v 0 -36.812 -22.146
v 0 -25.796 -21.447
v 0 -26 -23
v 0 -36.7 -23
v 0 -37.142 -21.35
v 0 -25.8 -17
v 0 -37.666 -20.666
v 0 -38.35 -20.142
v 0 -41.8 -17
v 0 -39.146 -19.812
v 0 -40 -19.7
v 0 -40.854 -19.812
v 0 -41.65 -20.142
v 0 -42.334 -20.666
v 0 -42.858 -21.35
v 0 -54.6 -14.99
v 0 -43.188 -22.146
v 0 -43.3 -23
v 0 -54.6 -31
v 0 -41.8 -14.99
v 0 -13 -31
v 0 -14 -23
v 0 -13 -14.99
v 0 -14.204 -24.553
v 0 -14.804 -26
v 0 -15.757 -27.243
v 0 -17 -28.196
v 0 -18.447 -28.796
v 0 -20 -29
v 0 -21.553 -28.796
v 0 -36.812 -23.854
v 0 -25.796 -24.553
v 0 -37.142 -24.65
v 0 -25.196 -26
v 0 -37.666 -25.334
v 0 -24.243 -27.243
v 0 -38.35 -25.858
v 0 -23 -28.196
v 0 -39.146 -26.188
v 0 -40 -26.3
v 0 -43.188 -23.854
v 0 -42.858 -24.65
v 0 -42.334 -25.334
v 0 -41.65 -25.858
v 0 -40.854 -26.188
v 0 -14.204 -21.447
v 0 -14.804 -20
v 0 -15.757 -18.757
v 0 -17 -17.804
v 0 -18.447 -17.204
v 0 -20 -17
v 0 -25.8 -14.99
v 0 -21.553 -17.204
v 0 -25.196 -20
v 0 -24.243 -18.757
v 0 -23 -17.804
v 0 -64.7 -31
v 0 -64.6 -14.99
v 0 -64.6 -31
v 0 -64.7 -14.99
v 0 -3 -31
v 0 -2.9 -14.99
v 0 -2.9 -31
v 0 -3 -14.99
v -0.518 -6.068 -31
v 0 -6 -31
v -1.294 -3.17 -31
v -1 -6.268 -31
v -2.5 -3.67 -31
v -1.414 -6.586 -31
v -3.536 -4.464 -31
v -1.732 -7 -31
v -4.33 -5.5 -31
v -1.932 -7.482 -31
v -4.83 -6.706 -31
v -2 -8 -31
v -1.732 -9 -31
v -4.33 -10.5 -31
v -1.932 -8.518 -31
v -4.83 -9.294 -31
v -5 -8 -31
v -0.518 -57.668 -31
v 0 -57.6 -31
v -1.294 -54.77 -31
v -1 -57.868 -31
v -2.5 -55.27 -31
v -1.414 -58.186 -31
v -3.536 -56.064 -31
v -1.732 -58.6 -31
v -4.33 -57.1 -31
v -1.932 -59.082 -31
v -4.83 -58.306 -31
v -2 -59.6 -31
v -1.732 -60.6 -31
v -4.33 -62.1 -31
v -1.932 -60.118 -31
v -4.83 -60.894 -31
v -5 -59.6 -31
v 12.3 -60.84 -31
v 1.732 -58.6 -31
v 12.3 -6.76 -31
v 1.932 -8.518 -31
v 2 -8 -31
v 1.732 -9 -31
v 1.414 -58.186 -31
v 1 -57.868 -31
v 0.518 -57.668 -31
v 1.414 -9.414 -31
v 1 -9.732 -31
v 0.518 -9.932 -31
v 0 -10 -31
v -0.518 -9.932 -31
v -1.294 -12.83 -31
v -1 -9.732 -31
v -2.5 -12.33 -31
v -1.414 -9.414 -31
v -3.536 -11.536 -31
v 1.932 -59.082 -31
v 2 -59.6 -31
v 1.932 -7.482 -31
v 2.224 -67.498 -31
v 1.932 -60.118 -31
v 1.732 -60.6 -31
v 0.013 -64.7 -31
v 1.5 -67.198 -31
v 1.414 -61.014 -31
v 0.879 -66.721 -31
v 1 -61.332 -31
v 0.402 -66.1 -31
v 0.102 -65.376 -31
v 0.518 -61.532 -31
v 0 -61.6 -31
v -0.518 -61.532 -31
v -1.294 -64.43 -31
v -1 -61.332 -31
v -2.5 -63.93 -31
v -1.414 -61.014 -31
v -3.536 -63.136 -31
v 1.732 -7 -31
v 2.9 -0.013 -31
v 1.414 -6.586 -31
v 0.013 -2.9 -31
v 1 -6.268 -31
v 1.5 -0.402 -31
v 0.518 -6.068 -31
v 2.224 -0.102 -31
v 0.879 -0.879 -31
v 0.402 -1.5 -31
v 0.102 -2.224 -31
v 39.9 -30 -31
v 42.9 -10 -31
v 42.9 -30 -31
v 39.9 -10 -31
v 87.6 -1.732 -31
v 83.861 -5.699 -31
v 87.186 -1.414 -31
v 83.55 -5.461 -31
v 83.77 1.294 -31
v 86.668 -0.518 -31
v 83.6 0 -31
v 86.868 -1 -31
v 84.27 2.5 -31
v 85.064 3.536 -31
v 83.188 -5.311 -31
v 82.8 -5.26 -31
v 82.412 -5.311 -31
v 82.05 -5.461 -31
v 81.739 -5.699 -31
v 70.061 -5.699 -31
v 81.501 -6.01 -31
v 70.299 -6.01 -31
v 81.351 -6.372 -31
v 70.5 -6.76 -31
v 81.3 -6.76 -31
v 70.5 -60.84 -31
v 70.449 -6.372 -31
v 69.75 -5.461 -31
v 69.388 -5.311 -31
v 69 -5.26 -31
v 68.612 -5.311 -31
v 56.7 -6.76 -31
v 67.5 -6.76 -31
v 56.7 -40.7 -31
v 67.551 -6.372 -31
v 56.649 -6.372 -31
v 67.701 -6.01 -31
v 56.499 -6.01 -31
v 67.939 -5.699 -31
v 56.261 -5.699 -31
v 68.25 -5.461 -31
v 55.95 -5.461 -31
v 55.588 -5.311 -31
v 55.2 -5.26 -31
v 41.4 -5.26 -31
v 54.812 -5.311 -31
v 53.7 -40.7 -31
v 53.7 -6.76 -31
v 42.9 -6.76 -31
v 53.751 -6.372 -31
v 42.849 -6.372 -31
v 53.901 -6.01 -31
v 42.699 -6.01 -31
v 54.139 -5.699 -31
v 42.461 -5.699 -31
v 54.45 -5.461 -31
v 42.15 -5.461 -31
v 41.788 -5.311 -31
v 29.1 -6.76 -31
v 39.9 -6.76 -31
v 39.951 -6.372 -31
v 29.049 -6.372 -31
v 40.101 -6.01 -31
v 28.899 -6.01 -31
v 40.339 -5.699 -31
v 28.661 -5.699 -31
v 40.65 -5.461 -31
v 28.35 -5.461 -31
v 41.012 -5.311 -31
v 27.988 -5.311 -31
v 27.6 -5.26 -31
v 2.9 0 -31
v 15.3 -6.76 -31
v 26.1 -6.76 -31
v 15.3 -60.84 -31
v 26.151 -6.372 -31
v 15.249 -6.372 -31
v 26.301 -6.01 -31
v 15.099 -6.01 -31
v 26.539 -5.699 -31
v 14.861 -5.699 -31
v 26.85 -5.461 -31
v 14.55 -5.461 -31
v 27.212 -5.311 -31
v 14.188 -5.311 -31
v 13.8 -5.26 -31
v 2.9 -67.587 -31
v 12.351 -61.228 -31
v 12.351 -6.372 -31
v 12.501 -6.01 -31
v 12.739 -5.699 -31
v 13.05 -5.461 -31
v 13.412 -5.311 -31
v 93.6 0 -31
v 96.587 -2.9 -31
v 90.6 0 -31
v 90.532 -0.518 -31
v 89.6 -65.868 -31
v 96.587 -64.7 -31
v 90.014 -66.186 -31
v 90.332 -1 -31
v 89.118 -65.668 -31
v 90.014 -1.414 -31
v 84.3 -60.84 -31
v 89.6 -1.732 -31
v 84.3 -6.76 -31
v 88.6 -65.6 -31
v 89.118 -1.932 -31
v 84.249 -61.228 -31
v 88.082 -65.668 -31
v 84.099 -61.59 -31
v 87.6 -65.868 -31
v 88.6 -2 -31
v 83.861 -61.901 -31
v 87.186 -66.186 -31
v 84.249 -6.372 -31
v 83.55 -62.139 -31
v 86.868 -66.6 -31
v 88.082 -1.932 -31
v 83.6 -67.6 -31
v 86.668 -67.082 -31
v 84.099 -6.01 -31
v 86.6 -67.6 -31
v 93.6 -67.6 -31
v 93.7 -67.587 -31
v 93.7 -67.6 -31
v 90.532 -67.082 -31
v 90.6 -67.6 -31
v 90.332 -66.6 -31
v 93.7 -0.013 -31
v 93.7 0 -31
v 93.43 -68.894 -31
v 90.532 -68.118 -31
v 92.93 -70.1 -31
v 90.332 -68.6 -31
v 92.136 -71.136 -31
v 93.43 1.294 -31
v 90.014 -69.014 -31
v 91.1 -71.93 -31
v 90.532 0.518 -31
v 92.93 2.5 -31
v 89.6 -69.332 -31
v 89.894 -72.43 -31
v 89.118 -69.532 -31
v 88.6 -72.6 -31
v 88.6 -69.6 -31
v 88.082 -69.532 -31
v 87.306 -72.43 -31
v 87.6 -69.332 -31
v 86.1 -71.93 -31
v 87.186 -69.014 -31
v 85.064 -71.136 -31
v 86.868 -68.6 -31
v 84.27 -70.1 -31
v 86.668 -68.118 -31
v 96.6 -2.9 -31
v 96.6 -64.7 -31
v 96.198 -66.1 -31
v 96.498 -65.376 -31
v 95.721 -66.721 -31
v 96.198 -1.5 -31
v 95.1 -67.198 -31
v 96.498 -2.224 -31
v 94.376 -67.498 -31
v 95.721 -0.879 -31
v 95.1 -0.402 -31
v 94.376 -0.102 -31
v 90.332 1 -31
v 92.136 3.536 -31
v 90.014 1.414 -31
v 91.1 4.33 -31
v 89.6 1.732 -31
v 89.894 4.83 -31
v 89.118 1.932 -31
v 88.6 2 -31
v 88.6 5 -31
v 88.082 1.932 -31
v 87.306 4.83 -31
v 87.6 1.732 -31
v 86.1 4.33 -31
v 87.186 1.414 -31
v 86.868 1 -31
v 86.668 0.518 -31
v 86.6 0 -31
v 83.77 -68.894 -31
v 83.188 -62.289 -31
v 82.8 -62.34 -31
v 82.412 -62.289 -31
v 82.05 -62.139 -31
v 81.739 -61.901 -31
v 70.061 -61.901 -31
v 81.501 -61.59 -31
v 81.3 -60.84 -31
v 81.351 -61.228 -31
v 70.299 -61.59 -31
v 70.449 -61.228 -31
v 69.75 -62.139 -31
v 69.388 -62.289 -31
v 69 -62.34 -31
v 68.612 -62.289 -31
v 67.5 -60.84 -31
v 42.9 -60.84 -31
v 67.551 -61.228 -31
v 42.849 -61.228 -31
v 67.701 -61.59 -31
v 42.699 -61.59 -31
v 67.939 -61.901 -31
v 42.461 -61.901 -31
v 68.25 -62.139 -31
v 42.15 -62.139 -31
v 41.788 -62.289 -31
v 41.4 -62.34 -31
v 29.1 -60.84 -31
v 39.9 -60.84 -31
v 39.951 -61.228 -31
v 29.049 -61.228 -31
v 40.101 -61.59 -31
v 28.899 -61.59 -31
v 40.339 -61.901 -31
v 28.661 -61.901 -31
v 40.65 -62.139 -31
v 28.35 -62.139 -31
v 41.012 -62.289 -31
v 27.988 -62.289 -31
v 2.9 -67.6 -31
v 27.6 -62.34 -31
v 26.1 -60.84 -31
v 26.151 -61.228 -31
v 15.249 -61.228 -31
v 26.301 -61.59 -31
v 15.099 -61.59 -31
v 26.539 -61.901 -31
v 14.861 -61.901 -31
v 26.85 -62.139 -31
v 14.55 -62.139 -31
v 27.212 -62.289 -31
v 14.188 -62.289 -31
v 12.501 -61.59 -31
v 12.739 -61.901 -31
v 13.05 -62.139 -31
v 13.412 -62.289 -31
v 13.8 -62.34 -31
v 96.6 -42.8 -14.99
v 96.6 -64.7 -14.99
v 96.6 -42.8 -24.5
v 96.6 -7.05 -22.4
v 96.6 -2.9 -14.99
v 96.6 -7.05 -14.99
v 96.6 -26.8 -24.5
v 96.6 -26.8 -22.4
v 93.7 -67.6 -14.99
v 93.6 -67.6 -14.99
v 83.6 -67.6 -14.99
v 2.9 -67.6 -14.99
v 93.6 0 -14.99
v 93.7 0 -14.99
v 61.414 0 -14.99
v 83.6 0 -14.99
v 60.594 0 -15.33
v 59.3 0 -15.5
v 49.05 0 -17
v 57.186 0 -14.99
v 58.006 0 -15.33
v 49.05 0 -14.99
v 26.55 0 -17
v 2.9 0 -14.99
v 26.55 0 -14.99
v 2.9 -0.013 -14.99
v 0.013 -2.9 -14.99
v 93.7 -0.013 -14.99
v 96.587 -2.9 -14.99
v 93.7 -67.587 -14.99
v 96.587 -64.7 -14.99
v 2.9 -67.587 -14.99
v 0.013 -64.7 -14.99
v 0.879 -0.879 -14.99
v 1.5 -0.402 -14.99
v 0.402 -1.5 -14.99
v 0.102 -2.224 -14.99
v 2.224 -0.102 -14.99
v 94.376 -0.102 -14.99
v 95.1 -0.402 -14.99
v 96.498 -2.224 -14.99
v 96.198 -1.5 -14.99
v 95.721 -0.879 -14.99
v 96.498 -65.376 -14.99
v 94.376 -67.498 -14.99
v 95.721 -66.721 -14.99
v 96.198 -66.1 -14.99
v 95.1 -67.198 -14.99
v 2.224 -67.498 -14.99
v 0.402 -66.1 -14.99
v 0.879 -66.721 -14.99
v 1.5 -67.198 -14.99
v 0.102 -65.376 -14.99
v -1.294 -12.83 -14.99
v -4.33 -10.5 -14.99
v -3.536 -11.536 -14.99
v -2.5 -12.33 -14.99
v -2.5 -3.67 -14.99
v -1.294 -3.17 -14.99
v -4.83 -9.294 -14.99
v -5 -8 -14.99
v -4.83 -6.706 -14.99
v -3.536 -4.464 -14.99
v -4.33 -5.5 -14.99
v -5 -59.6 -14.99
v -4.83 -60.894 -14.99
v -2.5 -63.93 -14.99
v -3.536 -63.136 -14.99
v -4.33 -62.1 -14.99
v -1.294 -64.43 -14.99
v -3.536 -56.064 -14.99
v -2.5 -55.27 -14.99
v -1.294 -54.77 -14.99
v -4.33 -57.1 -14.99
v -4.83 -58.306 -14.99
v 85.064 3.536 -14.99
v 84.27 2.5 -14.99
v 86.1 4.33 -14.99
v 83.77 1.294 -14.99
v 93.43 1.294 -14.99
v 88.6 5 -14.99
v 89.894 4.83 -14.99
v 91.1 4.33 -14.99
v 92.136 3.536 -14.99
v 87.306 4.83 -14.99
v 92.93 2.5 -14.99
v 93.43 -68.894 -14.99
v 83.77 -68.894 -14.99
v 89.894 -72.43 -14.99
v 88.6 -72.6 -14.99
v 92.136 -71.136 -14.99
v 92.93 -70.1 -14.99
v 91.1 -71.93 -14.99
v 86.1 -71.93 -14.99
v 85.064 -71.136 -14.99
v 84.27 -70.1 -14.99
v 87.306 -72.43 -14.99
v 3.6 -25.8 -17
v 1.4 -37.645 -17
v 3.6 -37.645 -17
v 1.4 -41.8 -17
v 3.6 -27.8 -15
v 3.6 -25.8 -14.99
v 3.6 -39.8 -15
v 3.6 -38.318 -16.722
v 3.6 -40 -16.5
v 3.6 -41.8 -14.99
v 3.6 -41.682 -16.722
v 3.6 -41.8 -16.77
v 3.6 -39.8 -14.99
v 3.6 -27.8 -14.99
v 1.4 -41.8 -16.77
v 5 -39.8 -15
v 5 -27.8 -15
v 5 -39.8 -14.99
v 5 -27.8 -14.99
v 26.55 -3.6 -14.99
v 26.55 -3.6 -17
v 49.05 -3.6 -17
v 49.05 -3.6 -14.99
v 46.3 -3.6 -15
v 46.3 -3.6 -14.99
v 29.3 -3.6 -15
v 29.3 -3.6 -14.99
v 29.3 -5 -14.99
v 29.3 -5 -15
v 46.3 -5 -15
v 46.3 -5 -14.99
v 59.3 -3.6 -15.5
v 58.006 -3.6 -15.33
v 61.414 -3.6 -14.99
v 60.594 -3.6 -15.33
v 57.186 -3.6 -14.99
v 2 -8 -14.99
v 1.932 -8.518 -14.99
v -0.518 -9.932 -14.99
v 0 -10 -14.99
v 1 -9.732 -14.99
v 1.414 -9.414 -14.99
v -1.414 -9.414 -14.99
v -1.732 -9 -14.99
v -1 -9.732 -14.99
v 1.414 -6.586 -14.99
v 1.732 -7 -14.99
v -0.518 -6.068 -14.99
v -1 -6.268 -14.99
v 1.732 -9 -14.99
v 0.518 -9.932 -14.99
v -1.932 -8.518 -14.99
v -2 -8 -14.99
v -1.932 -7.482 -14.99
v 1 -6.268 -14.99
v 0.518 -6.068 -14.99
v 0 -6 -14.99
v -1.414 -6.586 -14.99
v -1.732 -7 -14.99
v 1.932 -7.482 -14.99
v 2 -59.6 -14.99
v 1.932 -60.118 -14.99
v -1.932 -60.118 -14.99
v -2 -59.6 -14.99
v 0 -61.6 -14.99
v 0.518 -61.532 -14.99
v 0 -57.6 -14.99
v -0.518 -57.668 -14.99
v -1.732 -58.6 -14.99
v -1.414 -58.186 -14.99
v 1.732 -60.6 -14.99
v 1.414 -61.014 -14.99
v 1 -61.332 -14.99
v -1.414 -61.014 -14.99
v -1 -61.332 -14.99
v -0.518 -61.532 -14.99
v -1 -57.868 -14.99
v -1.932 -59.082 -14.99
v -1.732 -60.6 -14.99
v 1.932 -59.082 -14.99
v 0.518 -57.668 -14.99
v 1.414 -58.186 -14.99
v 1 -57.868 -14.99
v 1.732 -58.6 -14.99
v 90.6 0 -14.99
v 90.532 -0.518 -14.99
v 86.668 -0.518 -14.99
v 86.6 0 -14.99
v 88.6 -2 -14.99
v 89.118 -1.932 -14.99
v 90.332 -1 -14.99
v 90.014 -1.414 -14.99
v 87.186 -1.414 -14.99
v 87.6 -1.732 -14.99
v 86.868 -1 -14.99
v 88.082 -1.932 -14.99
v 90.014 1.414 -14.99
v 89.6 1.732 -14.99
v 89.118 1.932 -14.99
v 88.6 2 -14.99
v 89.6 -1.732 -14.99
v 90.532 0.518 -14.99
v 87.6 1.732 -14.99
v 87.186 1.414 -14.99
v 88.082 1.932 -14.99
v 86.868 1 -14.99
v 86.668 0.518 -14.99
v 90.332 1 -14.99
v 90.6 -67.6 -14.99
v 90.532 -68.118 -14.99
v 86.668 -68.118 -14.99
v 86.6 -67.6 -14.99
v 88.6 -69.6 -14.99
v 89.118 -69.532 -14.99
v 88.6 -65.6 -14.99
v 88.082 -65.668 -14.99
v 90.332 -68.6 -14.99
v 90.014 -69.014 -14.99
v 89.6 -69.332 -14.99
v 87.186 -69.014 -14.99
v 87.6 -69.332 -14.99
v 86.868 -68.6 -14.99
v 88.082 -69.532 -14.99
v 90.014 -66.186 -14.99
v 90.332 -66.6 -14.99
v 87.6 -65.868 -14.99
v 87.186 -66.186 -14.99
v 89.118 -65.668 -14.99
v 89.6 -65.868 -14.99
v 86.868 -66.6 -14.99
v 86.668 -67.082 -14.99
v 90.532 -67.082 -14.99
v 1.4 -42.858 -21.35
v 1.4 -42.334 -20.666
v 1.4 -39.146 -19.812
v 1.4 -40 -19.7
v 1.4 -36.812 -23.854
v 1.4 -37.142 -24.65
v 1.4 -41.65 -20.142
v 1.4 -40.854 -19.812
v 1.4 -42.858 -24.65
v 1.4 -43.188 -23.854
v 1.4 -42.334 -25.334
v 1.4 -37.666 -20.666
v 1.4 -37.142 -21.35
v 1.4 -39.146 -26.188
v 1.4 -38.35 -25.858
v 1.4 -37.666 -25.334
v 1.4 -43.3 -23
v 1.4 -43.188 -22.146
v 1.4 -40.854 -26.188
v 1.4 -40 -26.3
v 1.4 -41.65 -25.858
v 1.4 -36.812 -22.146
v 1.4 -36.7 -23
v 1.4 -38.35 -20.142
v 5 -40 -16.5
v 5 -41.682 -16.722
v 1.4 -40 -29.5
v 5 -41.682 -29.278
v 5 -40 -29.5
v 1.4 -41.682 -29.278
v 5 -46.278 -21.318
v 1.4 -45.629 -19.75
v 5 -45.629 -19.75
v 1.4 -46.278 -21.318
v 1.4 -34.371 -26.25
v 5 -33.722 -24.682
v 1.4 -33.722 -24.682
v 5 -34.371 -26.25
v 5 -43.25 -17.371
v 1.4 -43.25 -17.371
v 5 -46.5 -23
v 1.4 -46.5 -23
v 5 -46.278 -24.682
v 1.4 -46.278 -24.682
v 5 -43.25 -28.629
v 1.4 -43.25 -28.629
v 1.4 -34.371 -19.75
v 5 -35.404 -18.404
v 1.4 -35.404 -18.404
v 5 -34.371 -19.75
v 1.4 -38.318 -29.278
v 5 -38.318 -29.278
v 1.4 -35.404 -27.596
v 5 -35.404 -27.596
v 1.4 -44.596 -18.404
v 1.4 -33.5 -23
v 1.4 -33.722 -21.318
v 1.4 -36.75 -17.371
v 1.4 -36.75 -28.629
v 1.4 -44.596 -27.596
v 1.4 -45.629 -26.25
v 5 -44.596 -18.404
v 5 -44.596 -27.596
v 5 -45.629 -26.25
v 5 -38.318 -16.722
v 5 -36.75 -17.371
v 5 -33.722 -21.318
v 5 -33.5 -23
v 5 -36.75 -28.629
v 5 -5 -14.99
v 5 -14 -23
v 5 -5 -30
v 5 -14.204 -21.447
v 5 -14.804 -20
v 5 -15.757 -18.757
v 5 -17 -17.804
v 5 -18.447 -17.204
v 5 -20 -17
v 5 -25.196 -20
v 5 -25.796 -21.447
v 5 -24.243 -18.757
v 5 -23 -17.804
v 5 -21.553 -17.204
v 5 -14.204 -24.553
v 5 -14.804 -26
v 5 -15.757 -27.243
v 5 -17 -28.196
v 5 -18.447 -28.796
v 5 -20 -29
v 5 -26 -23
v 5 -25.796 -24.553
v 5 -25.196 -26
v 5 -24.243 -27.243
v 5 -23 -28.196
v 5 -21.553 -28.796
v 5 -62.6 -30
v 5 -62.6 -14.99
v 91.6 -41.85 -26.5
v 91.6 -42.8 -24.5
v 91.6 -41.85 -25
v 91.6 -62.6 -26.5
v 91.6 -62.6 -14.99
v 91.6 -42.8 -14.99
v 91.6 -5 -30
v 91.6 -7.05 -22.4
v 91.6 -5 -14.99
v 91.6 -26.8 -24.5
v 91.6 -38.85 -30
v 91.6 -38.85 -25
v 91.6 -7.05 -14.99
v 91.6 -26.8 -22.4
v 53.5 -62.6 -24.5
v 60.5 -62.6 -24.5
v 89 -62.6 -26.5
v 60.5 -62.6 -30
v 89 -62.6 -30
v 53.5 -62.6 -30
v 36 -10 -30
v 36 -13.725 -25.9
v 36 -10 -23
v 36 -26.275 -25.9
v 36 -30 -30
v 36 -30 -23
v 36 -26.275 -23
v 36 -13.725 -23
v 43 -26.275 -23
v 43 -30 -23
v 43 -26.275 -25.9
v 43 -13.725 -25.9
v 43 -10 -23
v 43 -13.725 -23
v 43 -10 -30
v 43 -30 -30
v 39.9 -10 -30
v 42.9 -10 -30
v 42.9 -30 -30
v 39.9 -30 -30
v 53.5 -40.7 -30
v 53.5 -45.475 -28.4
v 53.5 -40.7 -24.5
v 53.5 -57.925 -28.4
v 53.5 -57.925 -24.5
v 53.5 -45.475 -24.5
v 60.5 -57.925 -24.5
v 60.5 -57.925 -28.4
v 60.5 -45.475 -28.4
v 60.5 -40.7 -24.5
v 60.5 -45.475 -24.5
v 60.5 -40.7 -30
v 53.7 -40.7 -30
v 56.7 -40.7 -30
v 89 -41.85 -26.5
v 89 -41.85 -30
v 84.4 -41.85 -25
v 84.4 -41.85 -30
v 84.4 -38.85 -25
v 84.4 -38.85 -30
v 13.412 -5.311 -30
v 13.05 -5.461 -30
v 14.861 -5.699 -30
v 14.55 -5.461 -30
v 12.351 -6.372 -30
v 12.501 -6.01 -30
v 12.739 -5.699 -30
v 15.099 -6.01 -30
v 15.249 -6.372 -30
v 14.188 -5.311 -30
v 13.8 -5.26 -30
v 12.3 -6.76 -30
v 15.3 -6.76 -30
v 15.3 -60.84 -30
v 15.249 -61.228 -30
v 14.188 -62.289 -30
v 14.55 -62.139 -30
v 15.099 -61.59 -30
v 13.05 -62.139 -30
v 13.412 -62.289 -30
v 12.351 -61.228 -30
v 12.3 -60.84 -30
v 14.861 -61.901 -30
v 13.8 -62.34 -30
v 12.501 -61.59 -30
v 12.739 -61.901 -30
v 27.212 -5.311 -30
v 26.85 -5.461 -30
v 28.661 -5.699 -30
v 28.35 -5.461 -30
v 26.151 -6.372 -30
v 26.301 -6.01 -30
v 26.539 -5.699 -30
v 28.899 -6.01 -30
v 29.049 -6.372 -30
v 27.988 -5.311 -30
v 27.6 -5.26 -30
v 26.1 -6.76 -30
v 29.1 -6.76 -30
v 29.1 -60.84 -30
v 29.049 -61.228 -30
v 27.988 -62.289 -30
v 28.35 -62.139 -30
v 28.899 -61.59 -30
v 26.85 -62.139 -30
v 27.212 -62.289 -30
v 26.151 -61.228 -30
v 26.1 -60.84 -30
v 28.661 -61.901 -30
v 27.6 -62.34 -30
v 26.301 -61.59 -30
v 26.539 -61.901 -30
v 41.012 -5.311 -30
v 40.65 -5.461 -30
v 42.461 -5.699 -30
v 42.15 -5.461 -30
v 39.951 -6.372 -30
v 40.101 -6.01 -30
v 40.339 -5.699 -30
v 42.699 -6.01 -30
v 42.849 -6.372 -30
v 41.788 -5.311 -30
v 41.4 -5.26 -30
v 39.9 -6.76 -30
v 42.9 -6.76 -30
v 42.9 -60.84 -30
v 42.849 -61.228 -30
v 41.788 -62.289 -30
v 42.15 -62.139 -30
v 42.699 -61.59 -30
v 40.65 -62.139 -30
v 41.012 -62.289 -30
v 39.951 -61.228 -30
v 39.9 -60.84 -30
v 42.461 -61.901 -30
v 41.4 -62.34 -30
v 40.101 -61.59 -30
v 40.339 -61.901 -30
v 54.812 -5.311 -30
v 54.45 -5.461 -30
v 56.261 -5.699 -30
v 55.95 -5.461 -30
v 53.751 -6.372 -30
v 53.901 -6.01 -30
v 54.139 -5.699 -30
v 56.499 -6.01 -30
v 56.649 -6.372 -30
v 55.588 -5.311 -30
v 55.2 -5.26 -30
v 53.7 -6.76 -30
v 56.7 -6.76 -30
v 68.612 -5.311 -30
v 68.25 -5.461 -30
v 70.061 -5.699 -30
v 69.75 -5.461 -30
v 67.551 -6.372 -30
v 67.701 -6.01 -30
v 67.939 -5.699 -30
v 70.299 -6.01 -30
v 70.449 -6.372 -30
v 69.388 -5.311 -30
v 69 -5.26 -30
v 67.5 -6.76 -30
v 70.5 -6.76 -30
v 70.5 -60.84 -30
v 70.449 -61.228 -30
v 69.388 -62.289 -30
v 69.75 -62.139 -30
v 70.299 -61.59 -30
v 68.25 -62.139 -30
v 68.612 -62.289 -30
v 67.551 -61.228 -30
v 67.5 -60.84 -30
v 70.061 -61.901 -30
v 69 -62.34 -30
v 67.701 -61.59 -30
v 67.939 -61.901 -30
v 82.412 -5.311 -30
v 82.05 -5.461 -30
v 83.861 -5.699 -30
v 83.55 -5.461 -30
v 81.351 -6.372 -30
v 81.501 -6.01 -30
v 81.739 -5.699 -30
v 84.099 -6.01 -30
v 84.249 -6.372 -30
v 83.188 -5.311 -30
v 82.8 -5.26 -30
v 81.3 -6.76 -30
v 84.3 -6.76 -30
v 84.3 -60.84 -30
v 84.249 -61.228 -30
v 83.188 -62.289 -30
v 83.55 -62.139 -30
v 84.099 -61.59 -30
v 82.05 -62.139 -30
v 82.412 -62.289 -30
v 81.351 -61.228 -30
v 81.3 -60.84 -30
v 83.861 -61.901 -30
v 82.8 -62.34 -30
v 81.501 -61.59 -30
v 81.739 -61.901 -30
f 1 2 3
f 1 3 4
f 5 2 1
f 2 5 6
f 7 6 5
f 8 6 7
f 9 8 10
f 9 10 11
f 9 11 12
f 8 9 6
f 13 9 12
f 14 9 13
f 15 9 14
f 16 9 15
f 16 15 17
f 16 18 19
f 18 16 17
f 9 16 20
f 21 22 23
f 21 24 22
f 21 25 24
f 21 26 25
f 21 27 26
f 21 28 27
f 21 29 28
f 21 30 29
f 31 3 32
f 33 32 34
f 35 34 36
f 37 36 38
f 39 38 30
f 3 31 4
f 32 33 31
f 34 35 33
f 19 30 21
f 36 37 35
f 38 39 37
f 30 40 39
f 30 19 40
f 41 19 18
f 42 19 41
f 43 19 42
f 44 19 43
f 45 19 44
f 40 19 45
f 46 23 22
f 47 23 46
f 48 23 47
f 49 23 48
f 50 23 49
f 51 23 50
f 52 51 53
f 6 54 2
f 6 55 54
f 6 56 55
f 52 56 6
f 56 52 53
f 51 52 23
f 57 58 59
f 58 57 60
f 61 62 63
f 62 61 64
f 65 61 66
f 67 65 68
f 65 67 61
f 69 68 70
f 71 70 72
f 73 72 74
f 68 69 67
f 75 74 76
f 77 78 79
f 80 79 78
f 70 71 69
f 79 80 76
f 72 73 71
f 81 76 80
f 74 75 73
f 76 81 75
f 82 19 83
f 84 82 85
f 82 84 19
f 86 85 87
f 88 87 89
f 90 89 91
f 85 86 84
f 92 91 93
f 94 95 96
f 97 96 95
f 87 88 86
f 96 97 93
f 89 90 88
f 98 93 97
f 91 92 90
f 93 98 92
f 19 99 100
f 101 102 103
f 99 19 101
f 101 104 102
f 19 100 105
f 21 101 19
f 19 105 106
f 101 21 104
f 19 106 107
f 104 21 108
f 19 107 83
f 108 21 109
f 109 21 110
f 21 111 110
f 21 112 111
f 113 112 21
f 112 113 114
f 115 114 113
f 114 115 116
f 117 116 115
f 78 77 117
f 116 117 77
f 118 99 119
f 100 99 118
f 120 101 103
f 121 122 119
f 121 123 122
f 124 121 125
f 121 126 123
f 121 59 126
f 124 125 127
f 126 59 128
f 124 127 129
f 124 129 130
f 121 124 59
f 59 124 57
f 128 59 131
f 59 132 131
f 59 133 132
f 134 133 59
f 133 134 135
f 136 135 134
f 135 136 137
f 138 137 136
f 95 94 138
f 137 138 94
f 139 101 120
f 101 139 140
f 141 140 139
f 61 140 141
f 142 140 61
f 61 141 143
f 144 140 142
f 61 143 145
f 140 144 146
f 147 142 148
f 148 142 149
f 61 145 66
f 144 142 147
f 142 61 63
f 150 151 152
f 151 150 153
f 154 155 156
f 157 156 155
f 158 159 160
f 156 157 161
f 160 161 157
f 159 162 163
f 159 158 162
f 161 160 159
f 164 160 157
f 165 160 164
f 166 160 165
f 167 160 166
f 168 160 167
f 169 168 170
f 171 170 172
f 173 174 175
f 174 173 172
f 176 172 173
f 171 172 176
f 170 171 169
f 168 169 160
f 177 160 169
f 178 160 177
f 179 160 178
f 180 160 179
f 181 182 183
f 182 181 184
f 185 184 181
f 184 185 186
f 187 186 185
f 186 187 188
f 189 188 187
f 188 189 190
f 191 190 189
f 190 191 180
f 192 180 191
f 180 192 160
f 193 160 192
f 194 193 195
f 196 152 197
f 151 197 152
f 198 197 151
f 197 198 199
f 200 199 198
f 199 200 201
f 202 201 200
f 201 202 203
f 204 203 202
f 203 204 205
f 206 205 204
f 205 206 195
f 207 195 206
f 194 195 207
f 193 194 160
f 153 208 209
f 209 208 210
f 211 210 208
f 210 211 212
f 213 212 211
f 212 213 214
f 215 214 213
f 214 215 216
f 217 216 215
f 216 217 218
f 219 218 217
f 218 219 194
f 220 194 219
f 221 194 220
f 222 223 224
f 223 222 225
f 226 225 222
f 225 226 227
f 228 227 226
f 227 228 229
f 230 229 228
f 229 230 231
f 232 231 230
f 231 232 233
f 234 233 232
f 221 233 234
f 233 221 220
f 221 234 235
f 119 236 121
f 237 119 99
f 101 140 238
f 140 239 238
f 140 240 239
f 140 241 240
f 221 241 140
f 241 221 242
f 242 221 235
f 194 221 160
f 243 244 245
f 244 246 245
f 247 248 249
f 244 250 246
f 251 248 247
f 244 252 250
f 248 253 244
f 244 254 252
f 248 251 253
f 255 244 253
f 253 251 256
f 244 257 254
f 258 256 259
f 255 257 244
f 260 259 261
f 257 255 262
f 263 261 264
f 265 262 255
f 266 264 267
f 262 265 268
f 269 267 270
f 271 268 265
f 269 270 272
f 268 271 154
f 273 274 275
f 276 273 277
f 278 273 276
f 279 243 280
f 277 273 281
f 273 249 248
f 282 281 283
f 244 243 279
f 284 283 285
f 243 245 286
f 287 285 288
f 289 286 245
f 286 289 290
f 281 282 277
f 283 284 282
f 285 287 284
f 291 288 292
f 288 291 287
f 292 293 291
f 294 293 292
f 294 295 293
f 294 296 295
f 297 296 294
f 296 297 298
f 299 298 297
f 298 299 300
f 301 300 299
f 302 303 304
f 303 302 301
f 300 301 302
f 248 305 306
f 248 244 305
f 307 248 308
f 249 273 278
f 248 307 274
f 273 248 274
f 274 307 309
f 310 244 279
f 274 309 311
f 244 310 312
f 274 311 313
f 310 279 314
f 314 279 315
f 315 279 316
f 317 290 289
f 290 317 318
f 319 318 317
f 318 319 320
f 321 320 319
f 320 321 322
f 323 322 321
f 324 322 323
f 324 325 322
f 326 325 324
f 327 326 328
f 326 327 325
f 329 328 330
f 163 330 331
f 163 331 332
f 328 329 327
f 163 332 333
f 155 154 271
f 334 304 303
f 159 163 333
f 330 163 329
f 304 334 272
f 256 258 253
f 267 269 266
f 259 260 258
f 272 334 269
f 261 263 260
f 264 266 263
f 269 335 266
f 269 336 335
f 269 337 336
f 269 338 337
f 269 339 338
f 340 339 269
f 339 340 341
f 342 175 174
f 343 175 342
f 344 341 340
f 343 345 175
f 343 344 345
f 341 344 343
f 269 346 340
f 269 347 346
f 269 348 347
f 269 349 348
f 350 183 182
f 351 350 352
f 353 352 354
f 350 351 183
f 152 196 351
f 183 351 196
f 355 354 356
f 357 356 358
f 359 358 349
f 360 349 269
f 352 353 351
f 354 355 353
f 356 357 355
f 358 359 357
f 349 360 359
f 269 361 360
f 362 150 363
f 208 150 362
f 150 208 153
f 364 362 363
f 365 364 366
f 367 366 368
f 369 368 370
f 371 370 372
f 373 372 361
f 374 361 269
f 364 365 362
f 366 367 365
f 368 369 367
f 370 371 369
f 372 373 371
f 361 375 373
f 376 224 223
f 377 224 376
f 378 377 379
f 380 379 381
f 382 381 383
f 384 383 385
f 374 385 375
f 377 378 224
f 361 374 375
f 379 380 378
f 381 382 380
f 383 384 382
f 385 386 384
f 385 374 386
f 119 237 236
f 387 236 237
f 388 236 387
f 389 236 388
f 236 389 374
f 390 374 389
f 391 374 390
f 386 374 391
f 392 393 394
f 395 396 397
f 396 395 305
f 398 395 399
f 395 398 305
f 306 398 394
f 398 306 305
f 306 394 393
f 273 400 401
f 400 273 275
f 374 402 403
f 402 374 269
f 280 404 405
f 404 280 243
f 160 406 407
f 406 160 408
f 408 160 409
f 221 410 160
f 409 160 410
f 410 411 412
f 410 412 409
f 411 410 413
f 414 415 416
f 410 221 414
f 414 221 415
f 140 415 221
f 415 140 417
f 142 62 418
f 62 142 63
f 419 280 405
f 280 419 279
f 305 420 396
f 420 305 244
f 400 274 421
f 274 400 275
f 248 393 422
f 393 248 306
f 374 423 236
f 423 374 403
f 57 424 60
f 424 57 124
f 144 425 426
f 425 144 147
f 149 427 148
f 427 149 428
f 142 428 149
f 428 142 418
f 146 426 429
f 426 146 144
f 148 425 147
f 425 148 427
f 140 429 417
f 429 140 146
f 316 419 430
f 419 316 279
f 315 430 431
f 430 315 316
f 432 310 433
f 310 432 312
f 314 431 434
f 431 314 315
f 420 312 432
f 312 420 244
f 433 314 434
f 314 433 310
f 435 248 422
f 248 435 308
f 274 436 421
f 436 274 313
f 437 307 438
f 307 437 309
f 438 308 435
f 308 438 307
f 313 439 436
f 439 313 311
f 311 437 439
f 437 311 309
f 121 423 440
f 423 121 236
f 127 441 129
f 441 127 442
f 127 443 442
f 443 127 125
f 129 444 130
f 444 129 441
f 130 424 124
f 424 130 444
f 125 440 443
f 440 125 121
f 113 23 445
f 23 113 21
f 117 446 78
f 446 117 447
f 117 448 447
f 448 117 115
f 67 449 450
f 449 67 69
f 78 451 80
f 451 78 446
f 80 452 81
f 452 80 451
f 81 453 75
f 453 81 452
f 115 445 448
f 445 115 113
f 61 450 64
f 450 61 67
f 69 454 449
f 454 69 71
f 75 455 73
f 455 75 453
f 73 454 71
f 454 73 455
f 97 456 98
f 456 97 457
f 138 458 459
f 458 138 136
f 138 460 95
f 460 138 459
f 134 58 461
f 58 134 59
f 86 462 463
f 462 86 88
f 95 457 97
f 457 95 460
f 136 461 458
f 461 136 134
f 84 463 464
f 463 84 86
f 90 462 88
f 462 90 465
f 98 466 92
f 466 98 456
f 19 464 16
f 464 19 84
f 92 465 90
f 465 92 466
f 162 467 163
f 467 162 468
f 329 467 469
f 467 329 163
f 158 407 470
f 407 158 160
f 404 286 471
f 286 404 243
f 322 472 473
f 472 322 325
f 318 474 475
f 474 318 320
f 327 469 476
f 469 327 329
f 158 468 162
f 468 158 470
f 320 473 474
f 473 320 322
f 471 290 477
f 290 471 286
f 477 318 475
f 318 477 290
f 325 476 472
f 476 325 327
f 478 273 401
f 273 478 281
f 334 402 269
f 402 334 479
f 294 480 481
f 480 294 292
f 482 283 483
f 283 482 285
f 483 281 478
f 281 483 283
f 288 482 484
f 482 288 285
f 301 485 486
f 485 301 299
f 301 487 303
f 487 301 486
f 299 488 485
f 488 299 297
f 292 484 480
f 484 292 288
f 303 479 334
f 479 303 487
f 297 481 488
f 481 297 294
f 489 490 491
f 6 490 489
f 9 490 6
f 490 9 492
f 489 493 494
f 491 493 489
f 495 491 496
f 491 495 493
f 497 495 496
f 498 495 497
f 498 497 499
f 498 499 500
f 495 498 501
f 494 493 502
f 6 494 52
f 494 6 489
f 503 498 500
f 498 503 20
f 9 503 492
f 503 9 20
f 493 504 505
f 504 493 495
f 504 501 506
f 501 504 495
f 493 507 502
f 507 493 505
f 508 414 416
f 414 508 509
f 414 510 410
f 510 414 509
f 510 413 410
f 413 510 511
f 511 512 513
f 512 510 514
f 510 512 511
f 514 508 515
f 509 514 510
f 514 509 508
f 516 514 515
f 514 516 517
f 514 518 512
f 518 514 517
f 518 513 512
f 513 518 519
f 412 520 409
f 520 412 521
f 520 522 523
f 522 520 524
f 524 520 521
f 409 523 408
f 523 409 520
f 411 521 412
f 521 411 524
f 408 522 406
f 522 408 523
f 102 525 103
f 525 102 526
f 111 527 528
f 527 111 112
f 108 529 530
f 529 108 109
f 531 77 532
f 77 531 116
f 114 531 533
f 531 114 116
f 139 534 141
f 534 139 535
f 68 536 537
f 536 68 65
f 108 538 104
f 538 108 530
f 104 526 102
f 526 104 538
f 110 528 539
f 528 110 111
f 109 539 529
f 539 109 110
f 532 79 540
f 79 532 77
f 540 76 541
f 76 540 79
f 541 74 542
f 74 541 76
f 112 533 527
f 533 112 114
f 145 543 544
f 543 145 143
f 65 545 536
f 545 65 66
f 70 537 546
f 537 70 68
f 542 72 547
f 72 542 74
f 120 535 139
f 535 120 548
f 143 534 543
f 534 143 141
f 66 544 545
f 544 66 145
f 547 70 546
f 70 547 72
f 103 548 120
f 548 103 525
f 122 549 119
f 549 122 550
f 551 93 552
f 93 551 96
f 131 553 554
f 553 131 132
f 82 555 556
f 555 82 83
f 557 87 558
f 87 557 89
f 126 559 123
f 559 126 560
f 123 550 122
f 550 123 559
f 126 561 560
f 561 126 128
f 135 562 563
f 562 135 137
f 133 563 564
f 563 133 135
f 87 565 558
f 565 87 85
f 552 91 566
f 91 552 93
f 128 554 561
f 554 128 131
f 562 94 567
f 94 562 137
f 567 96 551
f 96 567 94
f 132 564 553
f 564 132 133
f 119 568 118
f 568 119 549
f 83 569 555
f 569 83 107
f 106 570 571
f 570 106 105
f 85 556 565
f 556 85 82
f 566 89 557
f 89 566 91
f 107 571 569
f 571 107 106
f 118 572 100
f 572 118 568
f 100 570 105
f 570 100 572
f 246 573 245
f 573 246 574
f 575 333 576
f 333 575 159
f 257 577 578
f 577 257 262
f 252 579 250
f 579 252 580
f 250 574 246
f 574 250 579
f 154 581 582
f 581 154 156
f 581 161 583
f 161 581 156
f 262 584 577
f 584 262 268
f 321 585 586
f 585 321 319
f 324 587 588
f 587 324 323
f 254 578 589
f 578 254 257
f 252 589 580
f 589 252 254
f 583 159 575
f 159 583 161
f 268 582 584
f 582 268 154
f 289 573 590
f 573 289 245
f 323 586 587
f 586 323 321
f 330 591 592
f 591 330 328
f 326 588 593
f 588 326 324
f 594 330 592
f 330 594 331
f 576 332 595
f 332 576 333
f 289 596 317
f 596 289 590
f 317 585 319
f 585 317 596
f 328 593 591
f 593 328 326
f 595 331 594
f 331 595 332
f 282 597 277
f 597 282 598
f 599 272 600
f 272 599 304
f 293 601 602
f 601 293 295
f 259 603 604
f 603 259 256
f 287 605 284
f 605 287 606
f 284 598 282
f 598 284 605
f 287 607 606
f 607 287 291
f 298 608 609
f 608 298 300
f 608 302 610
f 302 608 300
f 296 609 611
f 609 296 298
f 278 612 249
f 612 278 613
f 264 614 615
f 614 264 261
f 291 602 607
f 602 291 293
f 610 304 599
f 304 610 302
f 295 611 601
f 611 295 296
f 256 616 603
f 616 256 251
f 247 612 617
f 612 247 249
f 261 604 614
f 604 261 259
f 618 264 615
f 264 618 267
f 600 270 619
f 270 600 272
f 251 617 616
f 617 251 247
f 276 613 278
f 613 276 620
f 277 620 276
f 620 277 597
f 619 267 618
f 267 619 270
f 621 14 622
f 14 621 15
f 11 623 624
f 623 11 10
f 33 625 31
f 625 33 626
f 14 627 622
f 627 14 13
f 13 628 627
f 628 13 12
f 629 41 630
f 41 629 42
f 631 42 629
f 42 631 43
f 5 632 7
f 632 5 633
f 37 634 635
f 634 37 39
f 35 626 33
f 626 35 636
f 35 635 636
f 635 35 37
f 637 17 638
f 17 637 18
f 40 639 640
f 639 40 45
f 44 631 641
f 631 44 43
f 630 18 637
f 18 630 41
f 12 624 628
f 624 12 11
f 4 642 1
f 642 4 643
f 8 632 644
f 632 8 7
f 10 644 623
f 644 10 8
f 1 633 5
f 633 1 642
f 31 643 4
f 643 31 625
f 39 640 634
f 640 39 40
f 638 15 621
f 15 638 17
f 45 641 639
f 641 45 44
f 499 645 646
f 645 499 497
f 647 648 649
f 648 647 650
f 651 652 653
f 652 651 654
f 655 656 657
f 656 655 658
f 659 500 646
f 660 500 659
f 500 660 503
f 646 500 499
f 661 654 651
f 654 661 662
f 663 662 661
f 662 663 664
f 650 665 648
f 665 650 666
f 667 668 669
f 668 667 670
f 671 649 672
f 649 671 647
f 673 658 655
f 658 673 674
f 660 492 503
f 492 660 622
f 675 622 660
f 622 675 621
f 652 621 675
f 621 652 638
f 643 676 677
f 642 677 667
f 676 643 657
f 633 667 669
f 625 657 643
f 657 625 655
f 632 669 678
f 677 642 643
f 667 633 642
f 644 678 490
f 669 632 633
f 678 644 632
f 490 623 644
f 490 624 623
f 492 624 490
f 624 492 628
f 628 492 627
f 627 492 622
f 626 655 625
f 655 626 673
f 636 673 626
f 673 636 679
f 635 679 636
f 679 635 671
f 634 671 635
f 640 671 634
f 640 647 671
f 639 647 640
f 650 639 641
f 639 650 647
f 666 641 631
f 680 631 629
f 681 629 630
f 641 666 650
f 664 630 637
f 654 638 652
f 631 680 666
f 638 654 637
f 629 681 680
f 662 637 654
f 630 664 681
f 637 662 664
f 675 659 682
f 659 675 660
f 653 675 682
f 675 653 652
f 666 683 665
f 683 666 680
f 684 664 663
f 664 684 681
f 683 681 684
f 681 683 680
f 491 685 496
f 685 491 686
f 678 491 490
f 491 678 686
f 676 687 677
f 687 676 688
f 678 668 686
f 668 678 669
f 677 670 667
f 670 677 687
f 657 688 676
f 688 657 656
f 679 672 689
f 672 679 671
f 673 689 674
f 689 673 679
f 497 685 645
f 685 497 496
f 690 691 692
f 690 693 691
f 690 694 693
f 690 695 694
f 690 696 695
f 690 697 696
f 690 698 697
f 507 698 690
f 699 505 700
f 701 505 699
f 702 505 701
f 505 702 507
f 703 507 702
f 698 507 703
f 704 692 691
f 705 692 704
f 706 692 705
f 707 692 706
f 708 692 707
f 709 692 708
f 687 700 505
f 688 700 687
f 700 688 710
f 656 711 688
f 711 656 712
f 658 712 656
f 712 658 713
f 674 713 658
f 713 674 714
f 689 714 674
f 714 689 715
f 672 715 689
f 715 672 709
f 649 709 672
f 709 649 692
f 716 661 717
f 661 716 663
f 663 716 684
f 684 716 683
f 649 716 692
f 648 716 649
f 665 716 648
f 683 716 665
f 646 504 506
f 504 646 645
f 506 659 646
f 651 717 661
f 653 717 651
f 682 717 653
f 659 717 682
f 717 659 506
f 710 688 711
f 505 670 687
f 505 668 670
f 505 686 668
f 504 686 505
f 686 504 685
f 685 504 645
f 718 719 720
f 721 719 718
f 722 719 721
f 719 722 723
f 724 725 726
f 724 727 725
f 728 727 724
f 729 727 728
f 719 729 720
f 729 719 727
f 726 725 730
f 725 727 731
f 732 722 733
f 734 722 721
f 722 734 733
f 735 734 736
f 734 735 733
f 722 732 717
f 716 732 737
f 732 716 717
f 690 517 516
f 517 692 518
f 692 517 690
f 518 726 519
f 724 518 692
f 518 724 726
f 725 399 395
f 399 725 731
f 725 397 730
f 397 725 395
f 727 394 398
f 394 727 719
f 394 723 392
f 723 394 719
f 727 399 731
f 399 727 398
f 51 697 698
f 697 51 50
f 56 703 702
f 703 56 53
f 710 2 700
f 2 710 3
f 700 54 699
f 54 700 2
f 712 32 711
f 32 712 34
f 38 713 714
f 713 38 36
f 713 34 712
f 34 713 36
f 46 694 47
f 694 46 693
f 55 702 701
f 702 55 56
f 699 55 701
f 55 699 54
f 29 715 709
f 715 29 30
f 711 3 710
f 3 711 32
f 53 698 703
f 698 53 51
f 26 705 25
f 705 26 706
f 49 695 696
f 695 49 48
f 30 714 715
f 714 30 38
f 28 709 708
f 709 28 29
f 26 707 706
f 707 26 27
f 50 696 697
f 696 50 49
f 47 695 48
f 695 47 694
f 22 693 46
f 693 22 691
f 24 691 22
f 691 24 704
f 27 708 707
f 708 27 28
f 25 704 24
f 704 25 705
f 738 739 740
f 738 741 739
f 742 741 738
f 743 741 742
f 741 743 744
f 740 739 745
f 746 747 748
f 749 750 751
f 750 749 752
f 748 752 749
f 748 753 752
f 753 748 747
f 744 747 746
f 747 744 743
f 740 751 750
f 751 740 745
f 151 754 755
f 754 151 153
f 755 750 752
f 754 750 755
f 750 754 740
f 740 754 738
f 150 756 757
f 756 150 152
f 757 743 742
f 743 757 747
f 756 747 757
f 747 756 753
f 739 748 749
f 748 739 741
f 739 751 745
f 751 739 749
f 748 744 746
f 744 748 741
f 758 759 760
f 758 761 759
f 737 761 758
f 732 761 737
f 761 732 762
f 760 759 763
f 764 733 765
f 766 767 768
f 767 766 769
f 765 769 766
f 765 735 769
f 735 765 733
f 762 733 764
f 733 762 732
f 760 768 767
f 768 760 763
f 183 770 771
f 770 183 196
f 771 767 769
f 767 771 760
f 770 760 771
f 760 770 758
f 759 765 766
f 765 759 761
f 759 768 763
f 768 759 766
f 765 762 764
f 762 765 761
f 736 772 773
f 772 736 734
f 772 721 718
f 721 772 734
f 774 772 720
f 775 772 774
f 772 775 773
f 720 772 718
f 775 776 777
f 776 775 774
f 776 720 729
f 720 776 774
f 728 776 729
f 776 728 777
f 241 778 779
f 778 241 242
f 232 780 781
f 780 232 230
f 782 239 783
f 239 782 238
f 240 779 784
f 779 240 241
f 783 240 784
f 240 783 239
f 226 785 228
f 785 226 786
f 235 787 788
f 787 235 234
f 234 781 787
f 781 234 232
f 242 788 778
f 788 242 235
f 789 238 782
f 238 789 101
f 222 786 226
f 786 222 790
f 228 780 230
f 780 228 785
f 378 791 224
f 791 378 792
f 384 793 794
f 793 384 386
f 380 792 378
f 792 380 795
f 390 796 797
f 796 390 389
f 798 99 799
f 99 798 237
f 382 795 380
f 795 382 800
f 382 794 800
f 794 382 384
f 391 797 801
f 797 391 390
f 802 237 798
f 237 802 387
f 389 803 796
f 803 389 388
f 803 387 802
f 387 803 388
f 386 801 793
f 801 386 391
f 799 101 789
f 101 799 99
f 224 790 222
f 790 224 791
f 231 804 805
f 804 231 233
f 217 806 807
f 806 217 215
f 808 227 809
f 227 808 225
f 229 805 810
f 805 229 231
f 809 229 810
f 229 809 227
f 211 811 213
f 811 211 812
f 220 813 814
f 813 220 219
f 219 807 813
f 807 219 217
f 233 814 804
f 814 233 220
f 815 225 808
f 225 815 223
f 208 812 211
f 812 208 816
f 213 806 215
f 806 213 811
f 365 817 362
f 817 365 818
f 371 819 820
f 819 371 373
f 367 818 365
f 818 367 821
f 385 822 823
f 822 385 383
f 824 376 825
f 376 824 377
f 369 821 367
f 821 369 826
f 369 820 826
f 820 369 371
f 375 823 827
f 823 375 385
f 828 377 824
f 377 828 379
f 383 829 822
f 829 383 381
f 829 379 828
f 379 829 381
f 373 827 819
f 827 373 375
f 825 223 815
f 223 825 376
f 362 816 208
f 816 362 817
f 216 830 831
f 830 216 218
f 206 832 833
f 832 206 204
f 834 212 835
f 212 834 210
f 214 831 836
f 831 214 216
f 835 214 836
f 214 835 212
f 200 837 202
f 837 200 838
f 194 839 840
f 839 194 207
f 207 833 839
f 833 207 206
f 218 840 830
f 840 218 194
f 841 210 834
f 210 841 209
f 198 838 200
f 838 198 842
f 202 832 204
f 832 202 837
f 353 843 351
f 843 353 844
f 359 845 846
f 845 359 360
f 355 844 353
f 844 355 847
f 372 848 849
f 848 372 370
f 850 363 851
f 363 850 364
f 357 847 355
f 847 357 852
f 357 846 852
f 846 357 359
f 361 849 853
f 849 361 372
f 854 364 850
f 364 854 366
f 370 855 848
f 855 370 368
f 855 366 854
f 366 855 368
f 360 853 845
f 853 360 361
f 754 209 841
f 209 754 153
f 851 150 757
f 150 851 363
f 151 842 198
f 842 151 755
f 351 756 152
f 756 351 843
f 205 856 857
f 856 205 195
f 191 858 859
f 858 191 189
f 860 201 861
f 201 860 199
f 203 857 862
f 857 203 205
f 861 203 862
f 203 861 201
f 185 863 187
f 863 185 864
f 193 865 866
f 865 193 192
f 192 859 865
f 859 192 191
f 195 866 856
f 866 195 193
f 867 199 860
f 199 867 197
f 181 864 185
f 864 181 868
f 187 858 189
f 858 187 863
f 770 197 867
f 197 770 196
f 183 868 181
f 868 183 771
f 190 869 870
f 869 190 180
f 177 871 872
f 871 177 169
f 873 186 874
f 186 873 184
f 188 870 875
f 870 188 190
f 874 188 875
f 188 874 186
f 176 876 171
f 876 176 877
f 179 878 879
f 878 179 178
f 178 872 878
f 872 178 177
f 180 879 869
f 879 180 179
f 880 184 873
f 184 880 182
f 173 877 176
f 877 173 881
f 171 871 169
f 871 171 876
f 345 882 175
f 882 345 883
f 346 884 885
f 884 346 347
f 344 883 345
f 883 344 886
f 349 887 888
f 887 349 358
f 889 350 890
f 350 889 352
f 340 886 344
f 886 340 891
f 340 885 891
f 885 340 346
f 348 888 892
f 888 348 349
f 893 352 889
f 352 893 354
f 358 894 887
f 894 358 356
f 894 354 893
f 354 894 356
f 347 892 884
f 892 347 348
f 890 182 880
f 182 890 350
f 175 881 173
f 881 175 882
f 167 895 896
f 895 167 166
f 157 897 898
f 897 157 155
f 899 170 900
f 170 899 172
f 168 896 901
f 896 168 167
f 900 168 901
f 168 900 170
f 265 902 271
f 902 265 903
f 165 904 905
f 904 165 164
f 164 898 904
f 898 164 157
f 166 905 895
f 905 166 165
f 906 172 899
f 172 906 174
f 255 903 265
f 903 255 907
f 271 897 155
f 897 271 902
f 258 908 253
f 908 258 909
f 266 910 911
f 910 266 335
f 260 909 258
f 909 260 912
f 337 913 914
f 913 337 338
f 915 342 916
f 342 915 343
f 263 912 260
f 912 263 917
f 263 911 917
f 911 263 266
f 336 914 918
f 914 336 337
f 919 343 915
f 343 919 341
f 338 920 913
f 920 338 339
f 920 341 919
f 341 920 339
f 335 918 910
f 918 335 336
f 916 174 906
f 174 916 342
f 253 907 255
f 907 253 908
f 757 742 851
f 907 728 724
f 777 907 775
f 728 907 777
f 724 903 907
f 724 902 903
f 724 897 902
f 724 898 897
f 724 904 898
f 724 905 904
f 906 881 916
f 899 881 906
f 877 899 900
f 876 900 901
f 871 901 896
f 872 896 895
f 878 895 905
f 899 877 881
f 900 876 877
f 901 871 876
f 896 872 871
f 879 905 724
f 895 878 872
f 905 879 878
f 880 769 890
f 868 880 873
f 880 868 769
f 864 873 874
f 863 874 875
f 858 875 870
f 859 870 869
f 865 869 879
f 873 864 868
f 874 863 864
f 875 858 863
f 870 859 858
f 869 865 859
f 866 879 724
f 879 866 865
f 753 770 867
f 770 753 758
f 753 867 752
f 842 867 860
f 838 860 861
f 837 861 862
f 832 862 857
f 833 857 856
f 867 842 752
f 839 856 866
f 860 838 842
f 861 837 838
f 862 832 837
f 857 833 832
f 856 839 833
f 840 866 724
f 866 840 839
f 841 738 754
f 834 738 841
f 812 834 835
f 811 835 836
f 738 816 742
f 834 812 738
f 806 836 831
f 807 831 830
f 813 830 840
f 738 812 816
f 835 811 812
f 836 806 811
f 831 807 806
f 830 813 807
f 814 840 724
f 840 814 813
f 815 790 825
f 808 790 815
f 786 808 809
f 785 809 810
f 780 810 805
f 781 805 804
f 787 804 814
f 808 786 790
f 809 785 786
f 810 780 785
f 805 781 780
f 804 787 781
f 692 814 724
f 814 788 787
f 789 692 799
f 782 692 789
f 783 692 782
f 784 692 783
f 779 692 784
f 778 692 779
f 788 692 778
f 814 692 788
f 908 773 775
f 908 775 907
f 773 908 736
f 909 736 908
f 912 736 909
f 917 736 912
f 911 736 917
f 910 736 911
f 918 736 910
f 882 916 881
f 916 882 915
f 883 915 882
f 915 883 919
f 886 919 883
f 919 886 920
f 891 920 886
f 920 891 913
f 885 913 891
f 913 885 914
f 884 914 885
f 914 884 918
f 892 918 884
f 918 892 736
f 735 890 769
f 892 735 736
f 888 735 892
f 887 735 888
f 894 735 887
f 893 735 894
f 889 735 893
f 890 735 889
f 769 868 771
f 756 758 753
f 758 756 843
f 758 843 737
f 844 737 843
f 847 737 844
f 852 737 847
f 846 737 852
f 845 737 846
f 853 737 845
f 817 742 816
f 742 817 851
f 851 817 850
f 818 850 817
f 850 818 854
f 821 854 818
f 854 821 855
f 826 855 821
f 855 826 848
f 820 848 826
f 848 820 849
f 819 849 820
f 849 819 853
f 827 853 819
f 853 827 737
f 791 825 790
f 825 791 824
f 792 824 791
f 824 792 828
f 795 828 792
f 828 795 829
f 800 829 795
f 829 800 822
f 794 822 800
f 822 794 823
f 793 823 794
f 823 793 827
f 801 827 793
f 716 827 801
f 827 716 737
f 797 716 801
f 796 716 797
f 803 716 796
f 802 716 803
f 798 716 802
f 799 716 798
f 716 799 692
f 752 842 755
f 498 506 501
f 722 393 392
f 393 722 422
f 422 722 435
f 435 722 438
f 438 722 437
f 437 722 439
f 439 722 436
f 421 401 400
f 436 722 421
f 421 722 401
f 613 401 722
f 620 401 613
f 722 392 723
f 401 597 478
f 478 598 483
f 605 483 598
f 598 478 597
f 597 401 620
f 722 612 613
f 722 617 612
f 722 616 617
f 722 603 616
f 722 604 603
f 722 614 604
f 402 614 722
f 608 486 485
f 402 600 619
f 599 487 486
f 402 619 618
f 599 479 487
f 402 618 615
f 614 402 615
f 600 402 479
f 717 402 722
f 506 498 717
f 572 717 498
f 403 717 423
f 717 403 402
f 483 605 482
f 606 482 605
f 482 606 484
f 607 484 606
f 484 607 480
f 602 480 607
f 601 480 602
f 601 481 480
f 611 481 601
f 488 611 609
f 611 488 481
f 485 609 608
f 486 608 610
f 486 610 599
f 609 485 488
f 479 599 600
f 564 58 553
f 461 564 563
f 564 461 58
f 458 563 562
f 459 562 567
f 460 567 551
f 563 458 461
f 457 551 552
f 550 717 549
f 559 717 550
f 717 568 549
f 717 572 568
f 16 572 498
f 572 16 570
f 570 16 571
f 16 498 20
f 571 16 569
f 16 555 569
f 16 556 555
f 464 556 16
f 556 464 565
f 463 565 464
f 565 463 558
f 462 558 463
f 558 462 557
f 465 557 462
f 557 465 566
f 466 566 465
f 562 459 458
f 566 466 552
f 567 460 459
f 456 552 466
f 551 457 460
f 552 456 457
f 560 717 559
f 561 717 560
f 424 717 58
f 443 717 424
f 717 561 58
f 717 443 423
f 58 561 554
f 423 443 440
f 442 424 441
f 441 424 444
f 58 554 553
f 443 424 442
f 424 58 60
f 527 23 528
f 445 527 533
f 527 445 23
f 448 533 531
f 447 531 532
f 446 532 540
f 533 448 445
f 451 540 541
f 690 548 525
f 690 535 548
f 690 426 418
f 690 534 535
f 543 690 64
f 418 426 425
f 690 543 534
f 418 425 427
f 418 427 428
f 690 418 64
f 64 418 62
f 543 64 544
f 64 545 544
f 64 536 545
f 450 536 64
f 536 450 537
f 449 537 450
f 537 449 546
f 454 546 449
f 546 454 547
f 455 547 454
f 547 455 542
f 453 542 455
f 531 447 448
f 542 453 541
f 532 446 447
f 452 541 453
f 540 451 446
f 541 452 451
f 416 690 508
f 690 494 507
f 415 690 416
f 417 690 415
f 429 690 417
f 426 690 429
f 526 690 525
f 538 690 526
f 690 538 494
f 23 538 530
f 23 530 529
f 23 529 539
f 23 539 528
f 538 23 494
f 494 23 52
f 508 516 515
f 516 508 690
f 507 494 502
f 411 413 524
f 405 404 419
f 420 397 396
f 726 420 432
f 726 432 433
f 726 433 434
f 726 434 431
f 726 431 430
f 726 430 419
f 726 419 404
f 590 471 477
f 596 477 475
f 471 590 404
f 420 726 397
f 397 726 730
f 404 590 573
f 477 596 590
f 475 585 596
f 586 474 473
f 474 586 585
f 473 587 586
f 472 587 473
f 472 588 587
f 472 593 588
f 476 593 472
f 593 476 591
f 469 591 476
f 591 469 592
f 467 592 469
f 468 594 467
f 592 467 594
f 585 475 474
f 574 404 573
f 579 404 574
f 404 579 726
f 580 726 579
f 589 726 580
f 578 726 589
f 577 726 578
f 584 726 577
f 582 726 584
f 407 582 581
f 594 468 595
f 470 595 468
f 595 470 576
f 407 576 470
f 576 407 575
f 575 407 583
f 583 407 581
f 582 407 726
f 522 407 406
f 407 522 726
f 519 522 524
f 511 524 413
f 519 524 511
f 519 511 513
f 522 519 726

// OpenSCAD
///////////////////////////////////////////////////////////////////////////////
//
// Pack-A-PAW upper section
//
// $Id: packapaw_top.scad 3399 2015-10-27 11:06:34Z rollingcircle $
// $URL: https://rollingcircle.unfuddle.com/svn/rollingcircle_apps/RepRap/Raspberry_Pi_B+/packapaw/packapaw_top.scad $
//
//

use <packapaw_core.scad>

rotate([180.0, 0.0, 0.0])
{
  papTop();
}
